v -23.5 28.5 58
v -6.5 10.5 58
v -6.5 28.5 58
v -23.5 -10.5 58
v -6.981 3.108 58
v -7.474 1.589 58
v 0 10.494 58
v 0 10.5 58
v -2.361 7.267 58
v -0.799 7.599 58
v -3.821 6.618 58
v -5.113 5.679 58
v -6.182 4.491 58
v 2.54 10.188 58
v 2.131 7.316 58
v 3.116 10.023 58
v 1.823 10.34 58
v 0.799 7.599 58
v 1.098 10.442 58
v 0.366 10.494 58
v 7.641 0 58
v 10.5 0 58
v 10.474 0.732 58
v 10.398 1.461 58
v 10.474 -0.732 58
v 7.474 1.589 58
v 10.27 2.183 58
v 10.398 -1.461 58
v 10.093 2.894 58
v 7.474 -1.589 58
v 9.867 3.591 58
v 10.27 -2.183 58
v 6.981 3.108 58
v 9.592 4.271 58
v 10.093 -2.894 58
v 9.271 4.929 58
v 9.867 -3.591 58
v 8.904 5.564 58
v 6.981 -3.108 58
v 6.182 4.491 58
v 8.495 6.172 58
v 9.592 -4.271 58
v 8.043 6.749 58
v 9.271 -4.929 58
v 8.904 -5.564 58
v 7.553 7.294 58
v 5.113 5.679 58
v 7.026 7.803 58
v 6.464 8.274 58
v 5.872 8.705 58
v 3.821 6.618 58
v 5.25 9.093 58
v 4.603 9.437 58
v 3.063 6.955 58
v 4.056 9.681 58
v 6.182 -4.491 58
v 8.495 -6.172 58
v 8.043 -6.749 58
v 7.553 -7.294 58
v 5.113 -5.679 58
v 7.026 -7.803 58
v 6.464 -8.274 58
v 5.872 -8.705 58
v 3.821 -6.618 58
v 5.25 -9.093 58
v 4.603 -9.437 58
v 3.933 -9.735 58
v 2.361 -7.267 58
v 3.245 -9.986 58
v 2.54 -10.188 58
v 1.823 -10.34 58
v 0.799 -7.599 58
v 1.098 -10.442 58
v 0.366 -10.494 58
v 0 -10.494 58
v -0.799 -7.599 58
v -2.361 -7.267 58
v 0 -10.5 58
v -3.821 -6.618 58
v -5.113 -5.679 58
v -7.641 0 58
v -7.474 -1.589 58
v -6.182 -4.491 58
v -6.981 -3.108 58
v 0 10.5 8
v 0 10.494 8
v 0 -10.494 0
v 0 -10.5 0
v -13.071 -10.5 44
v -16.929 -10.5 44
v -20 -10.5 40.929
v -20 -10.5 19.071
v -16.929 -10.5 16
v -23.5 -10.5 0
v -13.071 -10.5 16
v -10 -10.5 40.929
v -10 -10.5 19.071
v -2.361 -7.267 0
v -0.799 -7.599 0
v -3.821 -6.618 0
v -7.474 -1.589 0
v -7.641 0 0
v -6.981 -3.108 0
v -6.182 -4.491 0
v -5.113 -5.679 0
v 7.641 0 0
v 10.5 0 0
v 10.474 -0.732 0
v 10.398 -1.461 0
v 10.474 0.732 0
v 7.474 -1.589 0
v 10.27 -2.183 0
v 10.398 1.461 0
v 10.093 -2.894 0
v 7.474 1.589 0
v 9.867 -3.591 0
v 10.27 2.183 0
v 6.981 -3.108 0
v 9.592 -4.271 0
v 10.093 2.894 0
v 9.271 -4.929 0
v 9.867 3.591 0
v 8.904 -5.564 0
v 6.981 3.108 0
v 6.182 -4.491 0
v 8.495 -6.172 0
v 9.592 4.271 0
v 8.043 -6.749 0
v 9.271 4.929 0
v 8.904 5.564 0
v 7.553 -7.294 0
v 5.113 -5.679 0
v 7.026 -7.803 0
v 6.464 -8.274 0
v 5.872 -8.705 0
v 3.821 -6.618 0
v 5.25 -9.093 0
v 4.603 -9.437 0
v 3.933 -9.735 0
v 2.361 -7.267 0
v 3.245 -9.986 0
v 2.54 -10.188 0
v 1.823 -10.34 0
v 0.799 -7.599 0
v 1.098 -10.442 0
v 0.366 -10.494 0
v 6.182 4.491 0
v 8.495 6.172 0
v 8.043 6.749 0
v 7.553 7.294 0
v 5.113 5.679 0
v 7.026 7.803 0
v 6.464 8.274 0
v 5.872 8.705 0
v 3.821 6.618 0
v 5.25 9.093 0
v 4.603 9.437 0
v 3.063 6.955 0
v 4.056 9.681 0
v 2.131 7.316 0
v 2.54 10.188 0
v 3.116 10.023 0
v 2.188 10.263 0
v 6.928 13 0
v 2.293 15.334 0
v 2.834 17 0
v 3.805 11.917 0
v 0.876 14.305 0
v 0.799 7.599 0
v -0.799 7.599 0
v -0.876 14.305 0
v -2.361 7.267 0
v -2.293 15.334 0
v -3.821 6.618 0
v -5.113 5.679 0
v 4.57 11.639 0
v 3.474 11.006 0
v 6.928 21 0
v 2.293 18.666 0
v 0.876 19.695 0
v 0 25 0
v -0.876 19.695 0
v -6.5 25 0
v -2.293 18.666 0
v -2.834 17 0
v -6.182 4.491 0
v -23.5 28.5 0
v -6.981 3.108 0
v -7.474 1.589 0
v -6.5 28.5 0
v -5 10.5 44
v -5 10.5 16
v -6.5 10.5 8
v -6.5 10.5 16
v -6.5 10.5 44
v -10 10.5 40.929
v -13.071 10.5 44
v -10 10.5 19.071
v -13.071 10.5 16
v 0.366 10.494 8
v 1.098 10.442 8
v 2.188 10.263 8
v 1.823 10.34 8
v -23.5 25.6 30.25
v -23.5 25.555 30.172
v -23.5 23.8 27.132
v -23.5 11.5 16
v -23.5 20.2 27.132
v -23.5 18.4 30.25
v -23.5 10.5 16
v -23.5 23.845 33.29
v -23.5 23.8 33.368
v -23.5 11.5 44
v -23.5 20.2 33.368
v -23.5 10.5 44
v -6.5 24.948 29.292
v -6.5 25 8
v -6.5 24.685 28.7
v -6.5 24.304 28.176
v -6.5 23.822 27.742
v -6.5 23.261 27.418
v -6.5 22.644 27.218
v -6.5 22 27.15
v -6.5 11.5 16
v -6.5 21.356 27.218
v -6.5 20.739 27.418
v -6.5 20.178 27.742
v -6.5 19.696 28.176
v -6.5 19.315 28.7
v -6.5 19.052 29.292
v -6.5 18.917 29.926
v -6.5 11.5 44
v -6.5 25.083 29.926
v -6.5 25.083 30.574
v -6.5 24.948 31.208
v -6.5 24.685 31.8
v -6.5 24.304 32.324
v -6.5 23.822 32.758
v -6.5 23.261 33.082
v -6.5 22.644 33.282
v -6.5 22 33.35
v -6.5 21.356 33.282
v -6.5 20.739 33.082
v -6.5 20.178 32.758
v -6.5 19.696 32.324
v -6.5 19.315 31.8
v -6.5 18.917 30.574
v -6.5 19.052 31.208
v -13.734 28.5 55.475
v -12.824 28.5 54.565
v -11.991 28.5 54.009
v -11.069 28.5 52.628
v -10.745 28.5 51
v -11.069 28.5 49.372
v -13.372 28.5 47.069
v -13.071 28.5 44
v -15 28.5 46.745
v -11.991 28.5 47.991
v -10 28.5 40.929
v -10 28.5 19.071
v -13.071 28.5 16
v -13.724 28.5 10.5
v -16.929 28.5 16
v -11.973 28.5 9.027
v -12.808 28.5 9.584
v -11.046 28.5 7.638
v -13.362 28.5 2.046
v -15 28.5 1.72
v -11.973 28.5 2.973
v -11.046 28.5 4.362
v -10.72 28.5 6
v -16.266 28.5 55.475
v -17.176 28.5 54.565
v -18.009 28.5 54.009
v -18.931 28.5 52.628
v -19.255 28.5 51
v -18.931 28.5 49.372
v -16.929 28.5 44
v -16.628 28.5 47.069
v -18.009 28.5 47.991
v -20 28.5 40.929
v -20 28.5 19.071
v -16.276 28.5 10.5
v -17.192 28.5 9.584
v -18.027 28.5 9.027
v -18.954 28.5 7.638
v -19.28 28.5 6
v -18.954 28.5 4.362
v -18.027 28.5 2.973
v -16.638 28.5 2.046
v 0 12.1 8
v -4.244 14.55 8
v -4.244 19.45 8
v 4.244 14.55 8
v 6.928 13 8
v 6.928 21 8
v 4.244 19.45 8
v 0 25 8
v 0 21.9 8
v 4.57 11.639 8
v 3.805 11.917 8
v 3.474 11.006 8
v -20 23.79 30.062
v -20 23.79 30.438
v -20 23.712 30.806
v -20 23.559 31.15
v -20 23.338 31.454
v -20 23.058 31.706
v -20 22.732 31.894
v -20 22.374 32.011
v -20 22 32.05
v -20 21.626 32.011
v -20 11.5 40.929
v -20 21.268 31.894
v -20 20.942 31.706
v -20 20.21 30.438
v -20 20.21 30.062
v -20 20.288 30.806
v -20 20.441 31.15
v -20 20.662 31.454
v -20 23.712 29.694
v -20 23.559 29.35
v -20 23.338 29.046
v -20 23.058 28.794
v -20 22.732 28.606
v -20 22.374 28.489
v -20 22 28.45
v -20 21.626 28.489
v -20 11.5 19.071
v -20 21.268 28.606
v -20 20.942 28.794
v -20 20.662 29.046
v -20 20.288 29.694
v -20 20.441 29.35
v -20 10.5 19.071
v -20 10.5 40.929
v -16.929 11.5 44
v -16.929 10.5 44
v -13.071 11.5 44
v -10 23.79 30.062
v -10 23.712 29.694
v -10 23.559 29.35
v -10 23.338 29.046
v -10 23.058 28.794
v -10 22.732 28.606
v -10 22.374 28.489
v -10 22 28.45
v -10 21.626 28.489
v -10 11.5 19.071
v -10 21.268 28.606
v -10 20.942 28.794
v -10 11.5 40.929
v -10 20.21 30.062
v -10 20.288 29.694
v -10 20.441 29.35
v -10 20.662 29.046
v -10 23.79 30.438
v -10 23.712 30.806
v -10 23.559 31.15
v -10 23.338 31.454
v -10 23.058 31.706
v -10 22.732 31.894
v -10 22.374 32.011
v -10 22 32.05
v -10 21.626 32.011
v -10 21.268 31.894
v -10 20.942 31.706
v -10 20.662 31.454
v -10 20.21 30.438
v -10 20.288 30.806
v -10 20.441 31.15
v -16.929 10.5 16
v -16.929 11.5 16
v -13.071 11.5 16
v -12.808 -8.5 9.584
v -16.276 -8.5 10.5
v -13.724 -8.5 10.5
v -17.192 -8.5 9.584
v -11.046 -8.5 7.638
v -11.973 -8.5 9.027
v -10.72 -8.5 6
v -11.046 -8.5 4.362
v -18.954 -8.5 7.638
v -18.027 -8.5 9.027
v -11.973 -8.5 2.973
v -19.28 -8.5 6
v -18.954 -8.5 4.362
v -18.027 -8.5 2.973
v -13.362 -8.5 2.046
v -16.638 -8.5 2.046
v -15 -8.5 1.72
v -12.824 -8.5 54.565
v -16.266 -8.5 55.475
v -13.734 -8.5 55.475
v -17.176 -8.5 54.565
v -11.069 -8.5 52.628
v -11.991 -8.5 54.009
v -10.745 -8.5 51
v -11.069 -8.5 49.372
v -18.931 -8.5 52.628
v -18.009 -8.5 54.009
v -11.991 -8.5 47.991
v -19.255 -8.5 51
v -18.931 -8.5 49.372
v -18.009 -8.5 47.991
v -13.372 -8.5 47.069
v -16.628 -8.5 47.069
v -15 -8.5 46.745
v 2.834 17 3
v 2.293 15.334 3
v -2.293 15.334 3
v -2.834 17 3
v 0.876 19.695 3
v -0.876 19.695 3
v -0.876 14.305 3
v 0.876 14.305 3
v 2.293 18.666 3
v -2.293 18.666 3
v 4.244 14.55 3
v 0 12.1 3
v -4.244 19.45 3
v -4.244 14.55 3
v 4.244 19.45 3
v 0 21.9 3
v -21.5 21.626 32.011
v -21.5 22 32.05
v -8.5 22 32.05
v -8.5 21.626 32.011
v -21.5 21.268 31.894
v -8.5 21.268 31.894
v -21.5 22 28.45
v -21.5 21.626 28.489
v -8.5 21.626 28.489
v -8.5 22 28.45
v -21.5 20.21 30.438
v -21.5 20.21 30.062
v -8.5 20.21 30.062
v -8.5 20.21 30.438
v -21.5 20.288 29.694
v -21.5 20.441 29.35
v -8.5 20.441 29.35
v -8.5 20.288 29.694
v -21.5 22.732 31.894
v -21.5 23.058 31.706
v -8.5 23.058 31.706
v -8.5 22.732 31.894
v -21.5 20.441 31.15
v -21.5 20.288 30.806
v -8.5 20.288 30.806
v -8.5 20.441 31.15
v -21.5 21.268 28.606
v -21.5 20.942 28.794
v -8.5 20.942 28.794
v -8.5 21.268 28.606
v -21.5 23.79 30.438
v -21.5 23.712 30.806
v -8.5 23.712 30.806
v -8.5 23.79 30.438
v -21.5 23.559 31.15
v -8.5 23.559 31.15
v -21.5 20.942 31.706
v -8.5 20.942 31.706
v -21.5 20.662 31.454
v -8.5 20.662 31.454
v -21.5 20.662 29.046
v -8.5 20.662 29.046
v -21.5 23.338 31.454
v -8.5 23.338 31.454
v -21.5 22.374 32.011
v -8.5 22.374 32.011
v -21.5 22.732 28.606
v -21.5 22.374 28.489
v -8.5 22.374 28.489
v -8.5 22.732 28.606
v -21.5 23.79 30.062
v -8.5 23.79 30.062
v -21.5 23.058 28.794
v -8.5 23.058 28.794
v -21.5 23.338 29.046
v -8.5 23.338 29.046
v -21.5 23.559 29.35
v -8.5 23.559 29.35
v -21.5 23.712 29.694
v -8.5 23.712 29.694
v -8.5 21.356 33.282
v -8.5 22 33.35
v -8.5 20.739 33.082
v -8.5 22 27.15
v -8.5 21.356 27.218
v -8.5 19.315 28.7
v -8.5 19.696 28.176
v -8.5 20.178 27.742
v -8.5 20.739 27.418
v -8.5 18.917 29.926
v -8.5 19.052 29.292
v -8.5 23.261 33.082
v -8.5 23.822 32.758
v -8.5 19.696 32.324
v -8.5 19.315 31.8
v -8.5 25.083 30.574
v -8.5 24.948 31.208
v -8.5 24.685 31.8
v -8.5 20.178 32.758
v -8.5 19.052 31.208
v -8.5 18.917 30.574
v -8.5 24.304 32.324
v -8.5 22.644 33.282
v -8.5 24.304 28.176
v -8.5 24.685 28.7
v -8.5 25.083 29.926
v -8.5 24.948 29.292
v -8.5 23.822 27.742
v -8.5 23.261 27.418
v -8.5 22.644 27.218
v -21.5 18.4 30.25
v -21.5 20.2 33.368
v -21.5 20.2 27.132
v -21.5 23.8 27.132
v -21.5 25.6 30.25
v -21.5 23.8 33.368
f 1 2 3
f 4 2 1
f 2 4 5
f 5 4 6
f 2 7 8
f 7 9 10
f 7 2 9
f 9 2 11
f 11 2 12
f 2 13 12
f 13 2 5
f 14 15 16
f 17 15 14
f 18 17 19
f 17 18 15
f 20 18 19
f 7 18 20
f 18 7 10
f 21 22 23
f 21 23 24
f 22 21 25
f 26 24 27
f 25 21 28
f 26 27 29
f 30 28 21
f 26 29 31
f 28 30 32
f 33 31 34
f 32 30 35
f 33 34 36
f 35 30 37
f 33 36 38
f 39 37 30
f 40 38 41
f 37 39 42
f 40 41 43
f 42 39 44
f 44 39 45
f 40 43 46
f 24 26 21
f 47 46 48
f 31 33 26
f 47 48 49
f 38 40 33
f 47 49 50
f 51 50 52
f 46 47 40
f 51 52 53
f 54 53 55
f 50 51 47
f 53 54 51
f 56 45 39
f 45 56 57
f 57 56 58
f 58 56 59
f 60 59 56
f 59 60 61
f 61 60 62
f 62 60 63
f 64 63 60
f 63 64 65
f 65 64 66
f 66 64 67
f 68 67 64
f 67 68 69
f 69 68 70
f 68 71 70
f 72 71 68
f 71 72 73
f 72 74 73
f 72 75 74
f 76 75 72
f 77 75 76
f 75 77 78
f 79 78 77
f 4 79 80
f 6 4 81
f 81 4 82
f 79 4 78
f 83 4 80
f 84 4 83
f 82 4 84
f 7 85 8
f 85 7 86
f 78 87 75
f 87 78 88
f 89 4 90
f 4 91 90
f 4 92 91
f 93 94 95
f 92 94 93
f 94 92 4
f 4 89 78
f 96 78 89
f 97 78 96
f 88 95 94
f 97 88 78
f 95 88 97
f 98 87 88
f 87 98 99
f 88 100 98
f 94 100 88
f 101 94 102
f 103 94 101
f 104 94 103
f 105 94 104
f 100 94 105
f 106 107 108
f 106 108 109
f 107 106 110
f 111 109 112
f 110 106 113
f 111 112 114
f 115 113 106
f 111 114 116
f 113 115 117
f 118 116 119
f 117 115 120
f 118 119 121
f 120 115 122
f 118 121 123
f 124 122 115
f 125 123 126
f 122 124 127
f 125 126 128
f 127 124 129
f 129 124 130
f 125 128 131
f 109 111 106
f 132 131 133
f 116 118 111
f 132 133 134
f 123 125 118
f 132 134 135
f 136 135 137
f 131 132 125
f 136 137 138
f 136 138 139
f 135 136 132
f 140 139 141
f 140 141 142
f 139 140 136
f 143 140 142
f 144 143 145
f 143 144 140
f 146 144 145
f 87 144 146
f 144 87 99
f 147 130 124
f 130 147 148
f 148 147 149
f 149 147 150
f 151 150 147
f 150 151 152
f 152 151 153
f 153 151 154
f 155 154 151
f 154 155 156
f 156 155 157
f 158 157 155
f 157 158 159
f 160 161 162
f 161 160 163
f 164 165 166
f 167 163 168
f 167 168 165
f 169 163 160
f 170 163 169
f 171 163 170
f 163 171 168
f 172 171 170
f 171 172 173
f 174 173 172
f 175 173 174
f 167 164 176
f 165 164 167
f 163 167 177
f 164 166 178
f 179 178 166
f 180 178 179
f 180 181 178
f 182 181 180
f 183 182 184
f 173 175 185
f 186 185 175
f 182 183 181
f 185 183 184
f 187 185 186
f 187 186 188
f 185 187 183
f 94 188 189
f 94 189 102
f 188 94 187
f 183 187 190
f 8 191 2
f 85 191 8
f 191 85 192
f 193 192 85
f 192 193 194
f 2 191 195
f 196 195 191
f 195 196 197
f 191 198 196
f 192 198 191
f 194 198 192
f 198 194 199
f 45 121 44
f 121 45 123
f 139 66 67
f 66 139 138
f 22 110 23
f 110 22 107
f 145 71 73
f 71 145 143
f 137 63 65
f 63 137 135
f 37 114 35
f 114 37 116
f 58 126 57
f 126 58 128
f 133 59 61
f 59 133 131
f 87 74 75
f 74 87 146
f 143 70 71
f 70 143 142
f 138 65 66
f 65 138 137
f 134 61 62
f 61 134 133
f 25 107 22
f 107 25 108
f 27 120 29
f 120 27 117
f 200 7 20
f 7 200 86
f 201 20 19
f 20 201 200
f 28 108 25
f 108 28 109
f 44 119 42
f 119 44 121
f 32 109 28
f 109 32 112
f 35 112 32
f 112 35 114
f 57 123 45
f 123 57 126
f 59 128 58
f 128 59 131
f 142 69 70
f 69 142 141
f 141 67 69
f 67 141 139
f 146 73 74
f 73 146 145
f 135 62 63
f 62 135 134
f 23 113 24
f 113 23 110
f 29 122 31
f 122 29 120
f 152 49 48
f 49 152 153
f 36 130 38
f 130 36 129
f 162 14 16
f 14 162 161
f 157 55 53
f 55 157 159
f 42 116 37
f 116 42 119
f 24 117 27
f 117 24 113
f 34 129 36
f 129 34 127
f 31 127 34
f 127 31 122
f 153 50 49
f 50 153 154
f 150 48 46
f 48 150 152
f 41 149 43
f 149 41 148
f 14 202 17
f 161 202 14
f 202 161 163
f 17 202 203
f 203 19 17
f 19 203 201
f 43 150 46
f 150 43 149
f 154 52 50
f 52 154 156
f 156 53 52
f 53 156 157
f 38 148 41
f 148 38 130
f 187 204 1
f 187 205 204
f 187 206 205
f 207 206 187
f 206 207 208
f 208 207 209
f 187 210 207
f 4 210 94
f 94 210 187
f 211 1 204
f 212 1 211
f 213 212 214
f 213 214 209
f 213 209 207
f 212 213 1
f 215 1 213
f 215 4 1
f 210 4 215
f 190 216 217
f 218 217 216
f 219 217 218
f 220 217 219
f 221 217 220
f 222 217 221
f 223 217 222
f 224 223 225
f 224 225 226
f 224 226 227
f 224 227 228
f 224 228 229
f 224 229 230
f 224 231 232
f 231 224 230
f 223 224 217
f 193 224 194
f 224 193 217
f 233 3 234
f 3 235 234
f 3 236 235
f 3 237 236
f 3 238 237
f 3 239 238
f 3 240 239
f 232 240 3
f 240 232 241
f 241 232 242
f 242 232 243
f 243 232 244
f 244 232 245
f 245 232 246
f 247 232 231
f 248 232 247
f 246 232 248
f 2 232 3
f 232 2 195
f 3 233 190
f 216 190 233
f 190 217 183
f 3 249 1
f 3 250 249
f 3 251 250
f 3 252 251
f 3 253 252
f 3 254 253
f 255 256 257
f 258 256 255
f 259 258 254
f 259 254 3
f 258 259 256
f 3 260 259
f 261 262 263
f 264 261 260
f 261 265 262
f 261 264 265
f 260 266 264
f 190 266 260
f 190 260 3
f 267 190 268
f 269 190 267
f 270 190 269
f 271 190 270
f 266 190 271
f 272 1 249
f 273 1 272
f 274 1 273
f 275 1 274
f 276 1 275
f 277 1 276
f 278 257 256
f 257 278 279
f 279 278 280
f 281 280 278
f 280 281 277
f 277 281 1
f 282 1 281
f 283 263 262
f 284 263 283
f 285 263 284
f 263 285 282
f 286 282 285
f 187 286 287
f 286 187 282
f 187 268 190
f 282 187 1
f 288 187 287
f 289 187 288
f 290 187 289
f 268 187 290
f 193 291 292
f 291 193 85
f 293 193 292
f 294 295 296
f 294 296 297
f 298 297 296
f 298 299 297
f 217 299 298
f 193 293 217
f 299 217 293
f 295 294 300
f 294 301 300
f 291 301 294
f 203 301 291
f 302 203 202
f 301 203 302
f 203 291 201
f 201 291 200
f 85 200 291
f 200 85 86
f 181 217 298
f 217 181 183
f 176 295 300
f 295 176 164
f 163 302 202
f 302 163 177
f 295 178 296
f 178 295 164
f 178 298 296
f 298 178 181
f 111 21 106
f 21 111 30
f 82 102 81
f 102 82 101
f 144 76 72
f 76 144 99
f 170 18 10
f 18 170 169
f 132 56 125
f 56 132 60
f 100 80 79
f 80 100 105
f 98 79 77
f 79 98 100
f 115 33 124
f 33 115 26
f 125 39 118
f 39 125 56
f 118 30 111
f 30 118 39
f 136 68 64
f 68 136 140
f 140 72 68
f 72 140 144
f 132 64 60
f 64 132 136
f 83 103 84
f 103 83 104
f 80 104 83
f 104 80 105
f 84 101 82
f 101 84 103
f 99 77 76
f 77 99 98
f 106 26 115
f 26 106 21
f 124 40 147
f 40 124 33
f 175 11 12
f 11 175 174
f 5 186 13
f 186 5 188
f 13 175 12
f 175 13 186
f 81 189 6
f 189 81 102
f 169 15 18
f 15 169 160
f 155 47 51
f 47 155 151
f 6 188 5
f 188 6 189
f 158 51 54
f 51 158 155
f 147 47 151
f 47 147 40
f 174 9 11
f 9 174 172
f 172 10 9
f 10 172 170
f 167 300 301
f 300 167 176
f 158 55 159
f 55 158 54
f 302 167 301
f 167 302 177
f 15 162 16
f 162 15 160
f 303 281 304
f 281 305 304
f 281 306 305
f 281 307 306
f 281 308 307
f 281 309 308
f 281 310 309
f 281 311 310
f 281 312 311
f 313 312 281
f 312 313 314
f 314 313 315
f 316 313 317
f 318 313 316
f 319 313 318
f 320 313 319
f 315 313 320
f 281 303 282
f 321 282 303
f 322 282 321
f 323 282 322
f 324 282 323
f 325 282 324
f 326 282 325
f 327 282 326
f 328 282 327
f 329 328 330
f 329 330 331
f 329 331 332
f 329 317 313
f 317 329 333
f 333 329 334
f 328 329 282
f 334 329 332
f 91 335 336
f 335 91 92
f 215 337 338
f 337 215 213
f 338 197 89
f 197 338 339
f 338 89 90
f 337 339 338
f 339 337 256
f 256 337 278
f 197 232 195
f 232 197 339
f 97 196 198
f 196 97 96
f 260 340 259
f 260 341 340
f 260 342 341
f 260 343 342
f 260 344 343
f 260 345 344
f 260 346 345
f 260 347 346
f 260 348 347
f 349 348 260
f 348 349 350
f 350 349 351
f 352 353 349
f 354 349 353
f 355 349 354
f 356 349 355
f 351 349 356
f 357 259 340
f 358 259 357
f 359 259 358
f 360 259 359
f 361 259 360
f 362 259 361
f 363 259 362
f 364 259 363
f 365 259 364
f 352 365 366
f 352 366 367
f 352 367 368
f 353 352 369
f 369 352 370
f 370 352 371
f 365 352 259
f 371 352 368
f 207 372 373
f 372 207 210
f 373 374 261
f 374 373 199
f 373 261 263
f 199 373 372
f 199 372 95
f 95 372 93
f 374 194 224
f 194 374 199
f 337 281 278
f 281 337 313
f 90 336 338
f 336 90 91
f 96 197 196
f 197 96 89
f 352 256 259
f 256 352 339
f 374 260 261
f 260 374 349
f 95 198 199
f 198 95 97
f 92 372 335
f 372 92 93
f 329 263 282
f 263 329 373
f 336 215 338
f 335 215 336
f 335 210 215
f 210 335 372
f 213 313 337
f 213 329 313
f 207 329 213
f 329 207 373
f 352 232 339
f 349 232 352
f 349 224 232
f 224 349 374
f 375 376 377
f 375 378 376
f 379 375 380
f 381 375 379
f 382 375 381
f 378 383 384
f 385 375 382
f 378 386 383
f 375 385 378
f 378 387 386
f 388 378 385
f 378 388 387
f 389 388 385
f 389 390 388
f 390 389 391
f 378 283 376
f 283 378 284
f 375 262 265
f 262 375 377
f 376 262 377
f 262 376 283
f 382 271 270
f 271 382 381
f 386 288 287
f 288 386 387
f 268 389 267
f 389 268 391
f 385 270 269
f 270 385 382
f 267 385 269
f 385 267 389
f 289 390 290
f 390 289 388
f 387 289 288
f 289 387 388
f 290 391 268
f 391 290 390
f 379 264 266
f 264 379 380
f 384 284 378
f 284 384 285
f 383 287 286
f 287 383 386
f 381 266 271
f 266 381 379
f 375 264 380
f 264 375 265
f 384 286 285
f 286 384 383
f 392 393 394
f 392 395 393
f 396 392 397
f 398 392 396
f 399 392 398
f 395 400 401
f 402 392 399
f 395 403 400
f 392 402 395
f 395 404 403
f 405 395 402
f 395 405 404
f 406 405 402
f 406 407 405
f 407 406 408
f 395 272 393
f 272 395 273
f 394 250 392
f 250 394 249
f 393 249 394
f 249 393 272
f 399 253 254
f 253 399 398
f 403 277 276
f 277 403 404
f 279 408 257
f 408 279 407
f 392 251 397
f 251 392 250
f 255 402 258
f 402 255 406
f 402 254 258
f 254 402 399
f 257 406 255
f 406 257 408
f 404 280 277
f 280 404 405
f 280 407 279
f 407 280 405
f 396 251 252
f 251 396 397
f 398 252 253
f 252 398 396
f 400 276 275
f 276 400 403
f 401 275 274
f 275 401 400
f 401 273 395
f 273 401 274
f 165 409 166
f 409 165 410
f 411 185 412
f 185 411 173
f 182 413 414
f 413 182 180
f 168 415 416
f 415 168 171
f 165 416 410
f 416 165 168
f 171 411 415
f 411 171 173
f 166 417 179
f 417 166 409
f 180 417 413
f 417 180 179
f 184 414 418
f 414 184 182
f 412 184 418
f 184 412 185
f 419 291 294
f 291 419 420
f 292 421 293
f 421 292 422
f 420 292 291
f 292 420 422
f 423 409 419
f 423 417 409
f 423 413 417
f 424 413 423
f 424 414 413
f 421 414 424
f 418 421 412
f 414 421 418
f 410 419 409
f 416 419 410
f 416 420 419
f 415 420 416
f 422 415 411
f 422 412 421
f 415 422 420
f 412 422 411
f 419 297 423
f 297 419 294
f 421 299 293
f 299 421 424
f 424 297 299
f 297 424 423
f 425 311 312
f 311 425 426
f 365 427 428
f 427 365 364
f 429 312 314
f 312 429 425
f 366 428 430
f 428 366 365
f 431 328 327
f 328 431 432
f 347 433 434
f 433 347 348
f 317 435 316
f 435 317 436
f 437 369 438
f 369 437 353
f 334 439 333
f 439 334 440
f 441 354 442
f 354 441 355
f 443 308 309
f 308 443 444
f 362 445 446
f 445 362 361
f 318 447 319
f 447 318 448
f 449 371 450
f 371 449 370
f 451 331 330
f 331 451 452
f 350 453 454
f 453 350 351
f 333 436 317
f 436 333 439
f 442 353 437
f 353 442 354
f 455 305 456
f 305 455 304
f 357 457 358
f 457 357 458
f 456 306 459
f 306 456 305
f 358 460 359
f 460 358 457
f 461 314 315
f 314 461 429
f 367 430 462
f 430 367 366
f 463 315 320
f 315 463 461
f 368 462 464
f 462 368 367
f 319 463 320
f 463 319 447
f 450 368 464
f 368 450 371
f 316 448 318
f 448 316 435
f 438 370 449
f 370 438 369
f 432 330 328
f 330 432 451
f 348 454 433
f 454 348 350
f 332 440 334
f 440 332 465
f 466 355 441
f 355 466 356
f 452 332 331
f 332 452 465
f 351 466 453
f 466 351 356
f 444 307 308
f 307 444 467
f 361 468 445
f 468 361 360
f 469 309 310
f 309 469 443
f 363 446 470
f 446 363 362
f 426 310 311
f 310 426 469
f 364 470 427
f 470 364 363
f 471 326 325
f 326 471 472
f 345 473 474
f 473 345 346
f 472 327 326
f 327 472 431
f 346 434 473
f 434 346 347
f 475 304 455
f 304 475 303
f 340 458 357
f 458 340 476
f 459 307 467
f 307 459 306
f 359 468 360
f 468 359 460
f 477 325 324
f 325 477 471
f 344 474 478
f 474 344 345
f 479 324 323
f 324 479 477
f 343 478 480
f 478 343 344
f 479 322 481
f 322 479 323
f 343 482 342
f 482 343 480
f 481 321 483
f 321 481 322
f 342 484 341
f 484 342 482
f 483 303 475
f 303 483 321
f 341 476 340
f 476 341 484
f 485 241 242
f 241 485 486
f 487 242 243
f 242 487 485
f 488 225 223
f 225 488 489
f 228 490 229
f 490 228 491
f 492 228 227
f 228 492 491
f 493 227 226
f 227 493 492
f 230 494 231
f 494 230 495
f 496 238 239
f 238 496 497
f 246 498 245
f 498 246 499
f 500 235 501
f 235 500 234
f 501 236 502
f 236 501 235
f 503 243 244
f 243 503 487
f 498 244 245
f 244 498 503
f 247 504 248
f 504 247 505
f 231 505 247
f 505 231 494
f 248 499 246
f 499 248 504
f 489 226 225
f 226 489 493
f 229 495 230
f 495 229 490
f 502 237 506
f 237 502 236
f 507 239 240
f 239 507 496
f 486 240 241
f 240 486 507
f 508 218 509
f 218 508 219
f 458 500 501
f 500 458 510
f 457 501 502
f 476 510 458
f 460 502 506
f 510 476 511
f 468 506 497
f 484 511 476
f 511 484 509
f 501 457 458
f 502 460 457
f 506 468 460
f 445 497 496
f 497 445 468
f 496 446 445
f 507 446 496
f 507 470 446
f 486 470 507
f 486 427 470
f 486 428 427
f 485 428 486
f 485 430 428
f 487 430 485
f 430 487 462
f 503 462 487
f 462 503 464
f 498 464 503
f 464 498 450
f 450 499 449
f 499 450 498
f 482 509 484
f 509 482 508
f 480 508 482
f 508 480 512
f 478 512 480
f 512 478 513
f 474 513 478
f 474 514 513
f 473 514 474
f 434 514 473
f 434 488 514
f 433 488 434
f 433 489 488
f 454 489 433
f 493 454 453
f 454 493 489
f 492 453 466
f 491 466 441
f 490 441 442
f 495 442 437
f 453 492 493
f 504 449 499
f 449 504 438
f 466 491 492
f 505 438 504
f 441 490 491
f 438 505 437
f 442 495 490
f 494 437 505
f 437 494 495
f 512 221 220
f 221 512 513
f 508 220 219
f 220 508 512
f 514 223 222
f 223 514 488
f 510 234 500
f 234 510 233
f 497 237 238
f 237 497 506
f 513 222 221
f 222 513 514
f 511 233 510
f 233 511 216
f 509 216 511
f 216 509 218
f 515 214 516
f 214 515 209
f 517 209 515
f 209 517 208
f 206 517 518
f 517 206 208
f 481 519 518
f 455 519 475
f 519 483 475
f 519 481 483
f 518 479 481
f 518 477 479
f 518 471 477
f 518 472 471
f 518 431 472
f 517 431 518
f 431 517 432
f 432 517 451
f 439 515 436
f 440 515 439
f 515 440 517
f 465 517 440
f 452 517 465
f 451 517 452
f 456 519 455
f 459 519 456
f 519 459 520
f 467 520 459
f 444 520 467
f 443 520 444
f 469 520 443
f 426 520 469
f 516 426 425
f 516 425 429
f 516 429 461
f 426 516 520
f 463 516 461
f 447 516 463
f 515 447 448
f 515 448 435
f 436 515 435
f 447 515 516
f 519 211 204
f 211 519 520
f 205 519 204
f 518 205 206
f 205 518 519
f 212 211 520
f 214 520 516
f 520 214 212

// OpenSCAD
// file: polyholes.scad
// MK2Clone r2
// based on Mendel90
//
// GNU GPL v2
// nop.head@gmail.com
// hydraraptor.blogspot.com
//
// See http://hydraraptor.blogspot.com/2011/02/polyholes.html
//
function sides(r) = max(round(4 *r),3);
function correctedRadius(r,n) = 0.1 + r / cos(180 / n);
function correctedDiameter(d) = 0.2 + d / cos(180 / sides(d / 2));

module polyCircle(r, center = false) {
    n = sides(r);
    circle(r = correctedRadius(r,n), $fn = n, center = center);
}

module poly_circle(r, center = false) {
	polyCircle(r, center);
}

module polyCylinder(r, h, center = false) {
    n = sides(r);
    cylinder(h = h, r = correctedRadius(r,n), $fn = n, center = center);
}

module poly_cylinder(r, h, center = false) {
	polyCylinder(r,h,center);
}

module polydCylinder(r, center = false) {
    n = sides(r);
    r = correctedRadius(r,n);
    cylinder(h = h, r = r, $fn = n, center = center);
    translate([0, -r, 0])
        cube([r, 2 * r, h]);
}

module poly_d_cylinder(r, center = false) {
	polydCylinder(r,center);
}
// file: bearing.scad
//Stallman 3D printer
// Bearing holders
// GNU GPL v3

//Derived from:
// PRUSA iteration3 Bearing holders GNU GPL v3 Josef Průša <iam@josefprusa.cz> and contributors http://www.reprap.org/wiki/Prusa_Mendel http://prusamendel.org

use <polyholes.scad>

bearing_diameter = 15;

module horizontal_bearing_base(bearings=1){
 translate(v=[0,0,6]) cube(size = [24,8+bearings*25,12], center = true);	
}
module horizontal_bearing_holes(bearings=1){
 cutter_lenght = 10+bearings*25;
 one_holder_lenght = 8+25;
 holder_lenght = 8+bearings*25;
 
 // Main bearing cut
 difference(){
  translate(v=[0,0,12]) rotate(a=[90,0,0]) translate(v=[0,0,-cutter_lenght/2]) cylinder(h = cutter_lenght, r=bearing_diameter/2, $fn=50);
  // Bearing retainers
  translate(v=[0,1-holder_lenght/2,3]) cube(size = [24,6,8], center = true);
  translate(v=[0,-1+holder_lenght/2,3]) cube(size = [24,6,8], center = true);
 }
 
 // Ziptie cutouts
 ziptie_cut_ofset = 0;
 for ( i = [0 : bearings-1] ){
  // For easier positioning I move them by half of one 
  // bearing holder then add each bearign lenght and then center again
  translate(v=[0,-holder_lenght/2,0]) translate(v=[0,one_holder_lenght/2+i*25,0]) difference(){
   union(){
    translate(v=[0,2-6,12]) rotate(a=[90,0,0]) translate(v=[0,0,0]) cylinder(h = 4, r=12.5, $fn=50);
    translate(v=[0,2+6,12]) rotate(a=[90,0,0]) translate(v=[0,0,0]) cylinder(h = 4, r=12.5, $fn=50);
   }
   translate(v=[0,10,12]) rotate(a=[90,0,0]) translate(v=[0,0,0]) cylinder(h = 24, r=10, $fn=50);
  }
 }
 
}

module horizontal_bearing_test(){
 difference(){
  horizontal_bearing_base(1);
  horizontal_bearing_holes(1);
 }
 translate(v=[30,0,0]) difference(){
  horizontal_bearing_base(2);
  horizontal_bearing_holes(2);
 }
 translate(v=[60,0,0]) difference(){
  horizontal_bearing_base(3);
  horizontal_bearing_holes(3);
 }
}



thinwall = 3;
bearing_size = bearing_diameter + 2 * thinwall;

module vertical_bearing_base(){
 translate(v=[-2-bearing_size/4,0,29]) cube(size = [4+bearing_size/2,bearing_size,58], center = true);
 cylinder(h = 58, r=bearing_size/2, $fn = 90);
}

module vertical_bearing_holes(){
  translate(v=[0,0,-1]) poly_cylinder(h = 62, r=bearing_diameter/2);
  rotate(a=[0,0,-70]) translate(v=[bearing_diameter/2-1,-0.5,-1]) cube(size = [thinwall*2,1,62]);

}

difference(){
vertical_bearing_base();
vertical_bearing_holes();
}
// file: x-end.scad
//Stallman 3D printer
// X end
// Used to attach endstops to 8mm rods
// GNU GPL v3

//Derived from:
// PRUSA iteration3 X end GNU GPL v3 Josef Průša <iam@josefprusa.cz> and contributors http://www.reprap.org/wiki/Prusa_Mendel http://prusamendel.org


use <bearing.scad>
use <polyholes.scad>
rod_distance = 45;

module x_end_base(){
// Main block
height = 58;
translate(v=[-15,-9,height/2]) cube(size = [17,39,height], center = true);
// Bearing holder
 vertical_bearing_base();	
//Nut trap
 // Cube
 translate(v=[-2-2,-17,4]) cube(size = [8,16,8], center = true);
 // Hexagon
 translate(v=[0,-17,0]) rotate([0,0,30]) cylinder(h = 8, r=8, $fn = 6);
}

module x_end_holes(){
 vertical_bearing_holes();
// Belt hole
translate(v=[-1,0,0]){
// Stress relief
translate(v=[-5.5-10+1.5,-10-1,30]) cube(size = [20,1,28], center = true);
difference(){
	translate(v=[-5.5-10+1.5,-10,30]) cube(size = [10,46,28], center = true);

	

	// Nice edges
	translate(v=[-5.5-10+1.5,-10,30+23]) rotate([0,45,0]) cube(size = [10,46,28], center = true);
	translate(v=[-5.5-10+1.5,-10,30+23]) rotate([0,-45,0]) cube(size = [10,46,28], center = true);
	translate(v=[-5.5-10+1.5,-10,30-23]) rotate([0,45,0]) cube(size = [10,46,28], center = true);
	translate(v=[-5.5-10+1.5,-10,30-23]) rotate([0,-45,0]) cube(size = [10,46,28], center = true);

}
}

// Bottom pushfit rod
translate(v=[-15,-41.5,6]) rotate(a=[-90,0,0]) pushfit_rod(8.2,50); //was 8.1
// Top pushfit rod
translate(v=[-15,-41.5,rod_distance+6]) rotate(a=[-90,0,0]) pushfit_rod(8.15,50);
// Nut trap
 translate(v=[0,-17,-0.5]) poly_cylinder(h = 4, r=2.6, $fn=25);
 translate(v=[0,-17,3]) rotate([0,0,30]) cylinder(h = 10, r=4.9, $fn = 6);
}


// Final prototype
module x_end_plain(){
 difference(){
  x_end_base();
  x_end_holes();
 }
}

x_end_plain();


module pushfit_rod(diameter,length){
 poly_cylinder(h = length, r=diameter/2);
 difference(){
 	translate(v=[0,-diameter/2.85,length/2]) rotate([0,0,45]) cube(size = [diameter/2,diameter/2,length], center = true);
 	translate(v=[0,-diameter/4-diameter/2-0.4,length/2]) rotate([0,0,0]) cube(size = [diameter,diameter/2,length], center = true);
 }
 //translate(v=[0,-diameter/2-2,length/2]) cube(size = [diameter,1,length], center = true);
}
// main file
//Stallman 3D printer
// X end idler
// Used to attach endstops to 8mm rods
// GNU GPL v3

//Derived from:
// PRUSA iteration 3 X end idler GNU GPL v3 Josef Průša <iam@josefprusa.cz> and contributors http://www.reprap.org/wiki/Prusa_Mendel http://prusamendel.org

use <x-end.scad>

module x_end_idler_base(){
 x_end_base();
}

module x_end_idler_holes(){
 x_end_holes();
 translate(v=[0,-22,30.25]) rotate(a=[0,-90,0]) cylinder(h = 80, r=1.8, $fn=30);
 translate(v=[1.5,-22,30.25]) rotate(a=[0,-90,0]) cylinder(h = 10, r=3.1, $fn=30);
 translate(v=[-21.5,-22,30.25]) rotate(a=[0,-90,0]) rotate(a=[0,0,30]) cylinder(h = 80, r=3.6, $fn=6);
}
 
// Final part
module x_end_idler(){
 mirror([0,1,0]) difference(){
  x_end_idler_base();
  x_end_idler_holes();
 }
}

x_end_idler();
